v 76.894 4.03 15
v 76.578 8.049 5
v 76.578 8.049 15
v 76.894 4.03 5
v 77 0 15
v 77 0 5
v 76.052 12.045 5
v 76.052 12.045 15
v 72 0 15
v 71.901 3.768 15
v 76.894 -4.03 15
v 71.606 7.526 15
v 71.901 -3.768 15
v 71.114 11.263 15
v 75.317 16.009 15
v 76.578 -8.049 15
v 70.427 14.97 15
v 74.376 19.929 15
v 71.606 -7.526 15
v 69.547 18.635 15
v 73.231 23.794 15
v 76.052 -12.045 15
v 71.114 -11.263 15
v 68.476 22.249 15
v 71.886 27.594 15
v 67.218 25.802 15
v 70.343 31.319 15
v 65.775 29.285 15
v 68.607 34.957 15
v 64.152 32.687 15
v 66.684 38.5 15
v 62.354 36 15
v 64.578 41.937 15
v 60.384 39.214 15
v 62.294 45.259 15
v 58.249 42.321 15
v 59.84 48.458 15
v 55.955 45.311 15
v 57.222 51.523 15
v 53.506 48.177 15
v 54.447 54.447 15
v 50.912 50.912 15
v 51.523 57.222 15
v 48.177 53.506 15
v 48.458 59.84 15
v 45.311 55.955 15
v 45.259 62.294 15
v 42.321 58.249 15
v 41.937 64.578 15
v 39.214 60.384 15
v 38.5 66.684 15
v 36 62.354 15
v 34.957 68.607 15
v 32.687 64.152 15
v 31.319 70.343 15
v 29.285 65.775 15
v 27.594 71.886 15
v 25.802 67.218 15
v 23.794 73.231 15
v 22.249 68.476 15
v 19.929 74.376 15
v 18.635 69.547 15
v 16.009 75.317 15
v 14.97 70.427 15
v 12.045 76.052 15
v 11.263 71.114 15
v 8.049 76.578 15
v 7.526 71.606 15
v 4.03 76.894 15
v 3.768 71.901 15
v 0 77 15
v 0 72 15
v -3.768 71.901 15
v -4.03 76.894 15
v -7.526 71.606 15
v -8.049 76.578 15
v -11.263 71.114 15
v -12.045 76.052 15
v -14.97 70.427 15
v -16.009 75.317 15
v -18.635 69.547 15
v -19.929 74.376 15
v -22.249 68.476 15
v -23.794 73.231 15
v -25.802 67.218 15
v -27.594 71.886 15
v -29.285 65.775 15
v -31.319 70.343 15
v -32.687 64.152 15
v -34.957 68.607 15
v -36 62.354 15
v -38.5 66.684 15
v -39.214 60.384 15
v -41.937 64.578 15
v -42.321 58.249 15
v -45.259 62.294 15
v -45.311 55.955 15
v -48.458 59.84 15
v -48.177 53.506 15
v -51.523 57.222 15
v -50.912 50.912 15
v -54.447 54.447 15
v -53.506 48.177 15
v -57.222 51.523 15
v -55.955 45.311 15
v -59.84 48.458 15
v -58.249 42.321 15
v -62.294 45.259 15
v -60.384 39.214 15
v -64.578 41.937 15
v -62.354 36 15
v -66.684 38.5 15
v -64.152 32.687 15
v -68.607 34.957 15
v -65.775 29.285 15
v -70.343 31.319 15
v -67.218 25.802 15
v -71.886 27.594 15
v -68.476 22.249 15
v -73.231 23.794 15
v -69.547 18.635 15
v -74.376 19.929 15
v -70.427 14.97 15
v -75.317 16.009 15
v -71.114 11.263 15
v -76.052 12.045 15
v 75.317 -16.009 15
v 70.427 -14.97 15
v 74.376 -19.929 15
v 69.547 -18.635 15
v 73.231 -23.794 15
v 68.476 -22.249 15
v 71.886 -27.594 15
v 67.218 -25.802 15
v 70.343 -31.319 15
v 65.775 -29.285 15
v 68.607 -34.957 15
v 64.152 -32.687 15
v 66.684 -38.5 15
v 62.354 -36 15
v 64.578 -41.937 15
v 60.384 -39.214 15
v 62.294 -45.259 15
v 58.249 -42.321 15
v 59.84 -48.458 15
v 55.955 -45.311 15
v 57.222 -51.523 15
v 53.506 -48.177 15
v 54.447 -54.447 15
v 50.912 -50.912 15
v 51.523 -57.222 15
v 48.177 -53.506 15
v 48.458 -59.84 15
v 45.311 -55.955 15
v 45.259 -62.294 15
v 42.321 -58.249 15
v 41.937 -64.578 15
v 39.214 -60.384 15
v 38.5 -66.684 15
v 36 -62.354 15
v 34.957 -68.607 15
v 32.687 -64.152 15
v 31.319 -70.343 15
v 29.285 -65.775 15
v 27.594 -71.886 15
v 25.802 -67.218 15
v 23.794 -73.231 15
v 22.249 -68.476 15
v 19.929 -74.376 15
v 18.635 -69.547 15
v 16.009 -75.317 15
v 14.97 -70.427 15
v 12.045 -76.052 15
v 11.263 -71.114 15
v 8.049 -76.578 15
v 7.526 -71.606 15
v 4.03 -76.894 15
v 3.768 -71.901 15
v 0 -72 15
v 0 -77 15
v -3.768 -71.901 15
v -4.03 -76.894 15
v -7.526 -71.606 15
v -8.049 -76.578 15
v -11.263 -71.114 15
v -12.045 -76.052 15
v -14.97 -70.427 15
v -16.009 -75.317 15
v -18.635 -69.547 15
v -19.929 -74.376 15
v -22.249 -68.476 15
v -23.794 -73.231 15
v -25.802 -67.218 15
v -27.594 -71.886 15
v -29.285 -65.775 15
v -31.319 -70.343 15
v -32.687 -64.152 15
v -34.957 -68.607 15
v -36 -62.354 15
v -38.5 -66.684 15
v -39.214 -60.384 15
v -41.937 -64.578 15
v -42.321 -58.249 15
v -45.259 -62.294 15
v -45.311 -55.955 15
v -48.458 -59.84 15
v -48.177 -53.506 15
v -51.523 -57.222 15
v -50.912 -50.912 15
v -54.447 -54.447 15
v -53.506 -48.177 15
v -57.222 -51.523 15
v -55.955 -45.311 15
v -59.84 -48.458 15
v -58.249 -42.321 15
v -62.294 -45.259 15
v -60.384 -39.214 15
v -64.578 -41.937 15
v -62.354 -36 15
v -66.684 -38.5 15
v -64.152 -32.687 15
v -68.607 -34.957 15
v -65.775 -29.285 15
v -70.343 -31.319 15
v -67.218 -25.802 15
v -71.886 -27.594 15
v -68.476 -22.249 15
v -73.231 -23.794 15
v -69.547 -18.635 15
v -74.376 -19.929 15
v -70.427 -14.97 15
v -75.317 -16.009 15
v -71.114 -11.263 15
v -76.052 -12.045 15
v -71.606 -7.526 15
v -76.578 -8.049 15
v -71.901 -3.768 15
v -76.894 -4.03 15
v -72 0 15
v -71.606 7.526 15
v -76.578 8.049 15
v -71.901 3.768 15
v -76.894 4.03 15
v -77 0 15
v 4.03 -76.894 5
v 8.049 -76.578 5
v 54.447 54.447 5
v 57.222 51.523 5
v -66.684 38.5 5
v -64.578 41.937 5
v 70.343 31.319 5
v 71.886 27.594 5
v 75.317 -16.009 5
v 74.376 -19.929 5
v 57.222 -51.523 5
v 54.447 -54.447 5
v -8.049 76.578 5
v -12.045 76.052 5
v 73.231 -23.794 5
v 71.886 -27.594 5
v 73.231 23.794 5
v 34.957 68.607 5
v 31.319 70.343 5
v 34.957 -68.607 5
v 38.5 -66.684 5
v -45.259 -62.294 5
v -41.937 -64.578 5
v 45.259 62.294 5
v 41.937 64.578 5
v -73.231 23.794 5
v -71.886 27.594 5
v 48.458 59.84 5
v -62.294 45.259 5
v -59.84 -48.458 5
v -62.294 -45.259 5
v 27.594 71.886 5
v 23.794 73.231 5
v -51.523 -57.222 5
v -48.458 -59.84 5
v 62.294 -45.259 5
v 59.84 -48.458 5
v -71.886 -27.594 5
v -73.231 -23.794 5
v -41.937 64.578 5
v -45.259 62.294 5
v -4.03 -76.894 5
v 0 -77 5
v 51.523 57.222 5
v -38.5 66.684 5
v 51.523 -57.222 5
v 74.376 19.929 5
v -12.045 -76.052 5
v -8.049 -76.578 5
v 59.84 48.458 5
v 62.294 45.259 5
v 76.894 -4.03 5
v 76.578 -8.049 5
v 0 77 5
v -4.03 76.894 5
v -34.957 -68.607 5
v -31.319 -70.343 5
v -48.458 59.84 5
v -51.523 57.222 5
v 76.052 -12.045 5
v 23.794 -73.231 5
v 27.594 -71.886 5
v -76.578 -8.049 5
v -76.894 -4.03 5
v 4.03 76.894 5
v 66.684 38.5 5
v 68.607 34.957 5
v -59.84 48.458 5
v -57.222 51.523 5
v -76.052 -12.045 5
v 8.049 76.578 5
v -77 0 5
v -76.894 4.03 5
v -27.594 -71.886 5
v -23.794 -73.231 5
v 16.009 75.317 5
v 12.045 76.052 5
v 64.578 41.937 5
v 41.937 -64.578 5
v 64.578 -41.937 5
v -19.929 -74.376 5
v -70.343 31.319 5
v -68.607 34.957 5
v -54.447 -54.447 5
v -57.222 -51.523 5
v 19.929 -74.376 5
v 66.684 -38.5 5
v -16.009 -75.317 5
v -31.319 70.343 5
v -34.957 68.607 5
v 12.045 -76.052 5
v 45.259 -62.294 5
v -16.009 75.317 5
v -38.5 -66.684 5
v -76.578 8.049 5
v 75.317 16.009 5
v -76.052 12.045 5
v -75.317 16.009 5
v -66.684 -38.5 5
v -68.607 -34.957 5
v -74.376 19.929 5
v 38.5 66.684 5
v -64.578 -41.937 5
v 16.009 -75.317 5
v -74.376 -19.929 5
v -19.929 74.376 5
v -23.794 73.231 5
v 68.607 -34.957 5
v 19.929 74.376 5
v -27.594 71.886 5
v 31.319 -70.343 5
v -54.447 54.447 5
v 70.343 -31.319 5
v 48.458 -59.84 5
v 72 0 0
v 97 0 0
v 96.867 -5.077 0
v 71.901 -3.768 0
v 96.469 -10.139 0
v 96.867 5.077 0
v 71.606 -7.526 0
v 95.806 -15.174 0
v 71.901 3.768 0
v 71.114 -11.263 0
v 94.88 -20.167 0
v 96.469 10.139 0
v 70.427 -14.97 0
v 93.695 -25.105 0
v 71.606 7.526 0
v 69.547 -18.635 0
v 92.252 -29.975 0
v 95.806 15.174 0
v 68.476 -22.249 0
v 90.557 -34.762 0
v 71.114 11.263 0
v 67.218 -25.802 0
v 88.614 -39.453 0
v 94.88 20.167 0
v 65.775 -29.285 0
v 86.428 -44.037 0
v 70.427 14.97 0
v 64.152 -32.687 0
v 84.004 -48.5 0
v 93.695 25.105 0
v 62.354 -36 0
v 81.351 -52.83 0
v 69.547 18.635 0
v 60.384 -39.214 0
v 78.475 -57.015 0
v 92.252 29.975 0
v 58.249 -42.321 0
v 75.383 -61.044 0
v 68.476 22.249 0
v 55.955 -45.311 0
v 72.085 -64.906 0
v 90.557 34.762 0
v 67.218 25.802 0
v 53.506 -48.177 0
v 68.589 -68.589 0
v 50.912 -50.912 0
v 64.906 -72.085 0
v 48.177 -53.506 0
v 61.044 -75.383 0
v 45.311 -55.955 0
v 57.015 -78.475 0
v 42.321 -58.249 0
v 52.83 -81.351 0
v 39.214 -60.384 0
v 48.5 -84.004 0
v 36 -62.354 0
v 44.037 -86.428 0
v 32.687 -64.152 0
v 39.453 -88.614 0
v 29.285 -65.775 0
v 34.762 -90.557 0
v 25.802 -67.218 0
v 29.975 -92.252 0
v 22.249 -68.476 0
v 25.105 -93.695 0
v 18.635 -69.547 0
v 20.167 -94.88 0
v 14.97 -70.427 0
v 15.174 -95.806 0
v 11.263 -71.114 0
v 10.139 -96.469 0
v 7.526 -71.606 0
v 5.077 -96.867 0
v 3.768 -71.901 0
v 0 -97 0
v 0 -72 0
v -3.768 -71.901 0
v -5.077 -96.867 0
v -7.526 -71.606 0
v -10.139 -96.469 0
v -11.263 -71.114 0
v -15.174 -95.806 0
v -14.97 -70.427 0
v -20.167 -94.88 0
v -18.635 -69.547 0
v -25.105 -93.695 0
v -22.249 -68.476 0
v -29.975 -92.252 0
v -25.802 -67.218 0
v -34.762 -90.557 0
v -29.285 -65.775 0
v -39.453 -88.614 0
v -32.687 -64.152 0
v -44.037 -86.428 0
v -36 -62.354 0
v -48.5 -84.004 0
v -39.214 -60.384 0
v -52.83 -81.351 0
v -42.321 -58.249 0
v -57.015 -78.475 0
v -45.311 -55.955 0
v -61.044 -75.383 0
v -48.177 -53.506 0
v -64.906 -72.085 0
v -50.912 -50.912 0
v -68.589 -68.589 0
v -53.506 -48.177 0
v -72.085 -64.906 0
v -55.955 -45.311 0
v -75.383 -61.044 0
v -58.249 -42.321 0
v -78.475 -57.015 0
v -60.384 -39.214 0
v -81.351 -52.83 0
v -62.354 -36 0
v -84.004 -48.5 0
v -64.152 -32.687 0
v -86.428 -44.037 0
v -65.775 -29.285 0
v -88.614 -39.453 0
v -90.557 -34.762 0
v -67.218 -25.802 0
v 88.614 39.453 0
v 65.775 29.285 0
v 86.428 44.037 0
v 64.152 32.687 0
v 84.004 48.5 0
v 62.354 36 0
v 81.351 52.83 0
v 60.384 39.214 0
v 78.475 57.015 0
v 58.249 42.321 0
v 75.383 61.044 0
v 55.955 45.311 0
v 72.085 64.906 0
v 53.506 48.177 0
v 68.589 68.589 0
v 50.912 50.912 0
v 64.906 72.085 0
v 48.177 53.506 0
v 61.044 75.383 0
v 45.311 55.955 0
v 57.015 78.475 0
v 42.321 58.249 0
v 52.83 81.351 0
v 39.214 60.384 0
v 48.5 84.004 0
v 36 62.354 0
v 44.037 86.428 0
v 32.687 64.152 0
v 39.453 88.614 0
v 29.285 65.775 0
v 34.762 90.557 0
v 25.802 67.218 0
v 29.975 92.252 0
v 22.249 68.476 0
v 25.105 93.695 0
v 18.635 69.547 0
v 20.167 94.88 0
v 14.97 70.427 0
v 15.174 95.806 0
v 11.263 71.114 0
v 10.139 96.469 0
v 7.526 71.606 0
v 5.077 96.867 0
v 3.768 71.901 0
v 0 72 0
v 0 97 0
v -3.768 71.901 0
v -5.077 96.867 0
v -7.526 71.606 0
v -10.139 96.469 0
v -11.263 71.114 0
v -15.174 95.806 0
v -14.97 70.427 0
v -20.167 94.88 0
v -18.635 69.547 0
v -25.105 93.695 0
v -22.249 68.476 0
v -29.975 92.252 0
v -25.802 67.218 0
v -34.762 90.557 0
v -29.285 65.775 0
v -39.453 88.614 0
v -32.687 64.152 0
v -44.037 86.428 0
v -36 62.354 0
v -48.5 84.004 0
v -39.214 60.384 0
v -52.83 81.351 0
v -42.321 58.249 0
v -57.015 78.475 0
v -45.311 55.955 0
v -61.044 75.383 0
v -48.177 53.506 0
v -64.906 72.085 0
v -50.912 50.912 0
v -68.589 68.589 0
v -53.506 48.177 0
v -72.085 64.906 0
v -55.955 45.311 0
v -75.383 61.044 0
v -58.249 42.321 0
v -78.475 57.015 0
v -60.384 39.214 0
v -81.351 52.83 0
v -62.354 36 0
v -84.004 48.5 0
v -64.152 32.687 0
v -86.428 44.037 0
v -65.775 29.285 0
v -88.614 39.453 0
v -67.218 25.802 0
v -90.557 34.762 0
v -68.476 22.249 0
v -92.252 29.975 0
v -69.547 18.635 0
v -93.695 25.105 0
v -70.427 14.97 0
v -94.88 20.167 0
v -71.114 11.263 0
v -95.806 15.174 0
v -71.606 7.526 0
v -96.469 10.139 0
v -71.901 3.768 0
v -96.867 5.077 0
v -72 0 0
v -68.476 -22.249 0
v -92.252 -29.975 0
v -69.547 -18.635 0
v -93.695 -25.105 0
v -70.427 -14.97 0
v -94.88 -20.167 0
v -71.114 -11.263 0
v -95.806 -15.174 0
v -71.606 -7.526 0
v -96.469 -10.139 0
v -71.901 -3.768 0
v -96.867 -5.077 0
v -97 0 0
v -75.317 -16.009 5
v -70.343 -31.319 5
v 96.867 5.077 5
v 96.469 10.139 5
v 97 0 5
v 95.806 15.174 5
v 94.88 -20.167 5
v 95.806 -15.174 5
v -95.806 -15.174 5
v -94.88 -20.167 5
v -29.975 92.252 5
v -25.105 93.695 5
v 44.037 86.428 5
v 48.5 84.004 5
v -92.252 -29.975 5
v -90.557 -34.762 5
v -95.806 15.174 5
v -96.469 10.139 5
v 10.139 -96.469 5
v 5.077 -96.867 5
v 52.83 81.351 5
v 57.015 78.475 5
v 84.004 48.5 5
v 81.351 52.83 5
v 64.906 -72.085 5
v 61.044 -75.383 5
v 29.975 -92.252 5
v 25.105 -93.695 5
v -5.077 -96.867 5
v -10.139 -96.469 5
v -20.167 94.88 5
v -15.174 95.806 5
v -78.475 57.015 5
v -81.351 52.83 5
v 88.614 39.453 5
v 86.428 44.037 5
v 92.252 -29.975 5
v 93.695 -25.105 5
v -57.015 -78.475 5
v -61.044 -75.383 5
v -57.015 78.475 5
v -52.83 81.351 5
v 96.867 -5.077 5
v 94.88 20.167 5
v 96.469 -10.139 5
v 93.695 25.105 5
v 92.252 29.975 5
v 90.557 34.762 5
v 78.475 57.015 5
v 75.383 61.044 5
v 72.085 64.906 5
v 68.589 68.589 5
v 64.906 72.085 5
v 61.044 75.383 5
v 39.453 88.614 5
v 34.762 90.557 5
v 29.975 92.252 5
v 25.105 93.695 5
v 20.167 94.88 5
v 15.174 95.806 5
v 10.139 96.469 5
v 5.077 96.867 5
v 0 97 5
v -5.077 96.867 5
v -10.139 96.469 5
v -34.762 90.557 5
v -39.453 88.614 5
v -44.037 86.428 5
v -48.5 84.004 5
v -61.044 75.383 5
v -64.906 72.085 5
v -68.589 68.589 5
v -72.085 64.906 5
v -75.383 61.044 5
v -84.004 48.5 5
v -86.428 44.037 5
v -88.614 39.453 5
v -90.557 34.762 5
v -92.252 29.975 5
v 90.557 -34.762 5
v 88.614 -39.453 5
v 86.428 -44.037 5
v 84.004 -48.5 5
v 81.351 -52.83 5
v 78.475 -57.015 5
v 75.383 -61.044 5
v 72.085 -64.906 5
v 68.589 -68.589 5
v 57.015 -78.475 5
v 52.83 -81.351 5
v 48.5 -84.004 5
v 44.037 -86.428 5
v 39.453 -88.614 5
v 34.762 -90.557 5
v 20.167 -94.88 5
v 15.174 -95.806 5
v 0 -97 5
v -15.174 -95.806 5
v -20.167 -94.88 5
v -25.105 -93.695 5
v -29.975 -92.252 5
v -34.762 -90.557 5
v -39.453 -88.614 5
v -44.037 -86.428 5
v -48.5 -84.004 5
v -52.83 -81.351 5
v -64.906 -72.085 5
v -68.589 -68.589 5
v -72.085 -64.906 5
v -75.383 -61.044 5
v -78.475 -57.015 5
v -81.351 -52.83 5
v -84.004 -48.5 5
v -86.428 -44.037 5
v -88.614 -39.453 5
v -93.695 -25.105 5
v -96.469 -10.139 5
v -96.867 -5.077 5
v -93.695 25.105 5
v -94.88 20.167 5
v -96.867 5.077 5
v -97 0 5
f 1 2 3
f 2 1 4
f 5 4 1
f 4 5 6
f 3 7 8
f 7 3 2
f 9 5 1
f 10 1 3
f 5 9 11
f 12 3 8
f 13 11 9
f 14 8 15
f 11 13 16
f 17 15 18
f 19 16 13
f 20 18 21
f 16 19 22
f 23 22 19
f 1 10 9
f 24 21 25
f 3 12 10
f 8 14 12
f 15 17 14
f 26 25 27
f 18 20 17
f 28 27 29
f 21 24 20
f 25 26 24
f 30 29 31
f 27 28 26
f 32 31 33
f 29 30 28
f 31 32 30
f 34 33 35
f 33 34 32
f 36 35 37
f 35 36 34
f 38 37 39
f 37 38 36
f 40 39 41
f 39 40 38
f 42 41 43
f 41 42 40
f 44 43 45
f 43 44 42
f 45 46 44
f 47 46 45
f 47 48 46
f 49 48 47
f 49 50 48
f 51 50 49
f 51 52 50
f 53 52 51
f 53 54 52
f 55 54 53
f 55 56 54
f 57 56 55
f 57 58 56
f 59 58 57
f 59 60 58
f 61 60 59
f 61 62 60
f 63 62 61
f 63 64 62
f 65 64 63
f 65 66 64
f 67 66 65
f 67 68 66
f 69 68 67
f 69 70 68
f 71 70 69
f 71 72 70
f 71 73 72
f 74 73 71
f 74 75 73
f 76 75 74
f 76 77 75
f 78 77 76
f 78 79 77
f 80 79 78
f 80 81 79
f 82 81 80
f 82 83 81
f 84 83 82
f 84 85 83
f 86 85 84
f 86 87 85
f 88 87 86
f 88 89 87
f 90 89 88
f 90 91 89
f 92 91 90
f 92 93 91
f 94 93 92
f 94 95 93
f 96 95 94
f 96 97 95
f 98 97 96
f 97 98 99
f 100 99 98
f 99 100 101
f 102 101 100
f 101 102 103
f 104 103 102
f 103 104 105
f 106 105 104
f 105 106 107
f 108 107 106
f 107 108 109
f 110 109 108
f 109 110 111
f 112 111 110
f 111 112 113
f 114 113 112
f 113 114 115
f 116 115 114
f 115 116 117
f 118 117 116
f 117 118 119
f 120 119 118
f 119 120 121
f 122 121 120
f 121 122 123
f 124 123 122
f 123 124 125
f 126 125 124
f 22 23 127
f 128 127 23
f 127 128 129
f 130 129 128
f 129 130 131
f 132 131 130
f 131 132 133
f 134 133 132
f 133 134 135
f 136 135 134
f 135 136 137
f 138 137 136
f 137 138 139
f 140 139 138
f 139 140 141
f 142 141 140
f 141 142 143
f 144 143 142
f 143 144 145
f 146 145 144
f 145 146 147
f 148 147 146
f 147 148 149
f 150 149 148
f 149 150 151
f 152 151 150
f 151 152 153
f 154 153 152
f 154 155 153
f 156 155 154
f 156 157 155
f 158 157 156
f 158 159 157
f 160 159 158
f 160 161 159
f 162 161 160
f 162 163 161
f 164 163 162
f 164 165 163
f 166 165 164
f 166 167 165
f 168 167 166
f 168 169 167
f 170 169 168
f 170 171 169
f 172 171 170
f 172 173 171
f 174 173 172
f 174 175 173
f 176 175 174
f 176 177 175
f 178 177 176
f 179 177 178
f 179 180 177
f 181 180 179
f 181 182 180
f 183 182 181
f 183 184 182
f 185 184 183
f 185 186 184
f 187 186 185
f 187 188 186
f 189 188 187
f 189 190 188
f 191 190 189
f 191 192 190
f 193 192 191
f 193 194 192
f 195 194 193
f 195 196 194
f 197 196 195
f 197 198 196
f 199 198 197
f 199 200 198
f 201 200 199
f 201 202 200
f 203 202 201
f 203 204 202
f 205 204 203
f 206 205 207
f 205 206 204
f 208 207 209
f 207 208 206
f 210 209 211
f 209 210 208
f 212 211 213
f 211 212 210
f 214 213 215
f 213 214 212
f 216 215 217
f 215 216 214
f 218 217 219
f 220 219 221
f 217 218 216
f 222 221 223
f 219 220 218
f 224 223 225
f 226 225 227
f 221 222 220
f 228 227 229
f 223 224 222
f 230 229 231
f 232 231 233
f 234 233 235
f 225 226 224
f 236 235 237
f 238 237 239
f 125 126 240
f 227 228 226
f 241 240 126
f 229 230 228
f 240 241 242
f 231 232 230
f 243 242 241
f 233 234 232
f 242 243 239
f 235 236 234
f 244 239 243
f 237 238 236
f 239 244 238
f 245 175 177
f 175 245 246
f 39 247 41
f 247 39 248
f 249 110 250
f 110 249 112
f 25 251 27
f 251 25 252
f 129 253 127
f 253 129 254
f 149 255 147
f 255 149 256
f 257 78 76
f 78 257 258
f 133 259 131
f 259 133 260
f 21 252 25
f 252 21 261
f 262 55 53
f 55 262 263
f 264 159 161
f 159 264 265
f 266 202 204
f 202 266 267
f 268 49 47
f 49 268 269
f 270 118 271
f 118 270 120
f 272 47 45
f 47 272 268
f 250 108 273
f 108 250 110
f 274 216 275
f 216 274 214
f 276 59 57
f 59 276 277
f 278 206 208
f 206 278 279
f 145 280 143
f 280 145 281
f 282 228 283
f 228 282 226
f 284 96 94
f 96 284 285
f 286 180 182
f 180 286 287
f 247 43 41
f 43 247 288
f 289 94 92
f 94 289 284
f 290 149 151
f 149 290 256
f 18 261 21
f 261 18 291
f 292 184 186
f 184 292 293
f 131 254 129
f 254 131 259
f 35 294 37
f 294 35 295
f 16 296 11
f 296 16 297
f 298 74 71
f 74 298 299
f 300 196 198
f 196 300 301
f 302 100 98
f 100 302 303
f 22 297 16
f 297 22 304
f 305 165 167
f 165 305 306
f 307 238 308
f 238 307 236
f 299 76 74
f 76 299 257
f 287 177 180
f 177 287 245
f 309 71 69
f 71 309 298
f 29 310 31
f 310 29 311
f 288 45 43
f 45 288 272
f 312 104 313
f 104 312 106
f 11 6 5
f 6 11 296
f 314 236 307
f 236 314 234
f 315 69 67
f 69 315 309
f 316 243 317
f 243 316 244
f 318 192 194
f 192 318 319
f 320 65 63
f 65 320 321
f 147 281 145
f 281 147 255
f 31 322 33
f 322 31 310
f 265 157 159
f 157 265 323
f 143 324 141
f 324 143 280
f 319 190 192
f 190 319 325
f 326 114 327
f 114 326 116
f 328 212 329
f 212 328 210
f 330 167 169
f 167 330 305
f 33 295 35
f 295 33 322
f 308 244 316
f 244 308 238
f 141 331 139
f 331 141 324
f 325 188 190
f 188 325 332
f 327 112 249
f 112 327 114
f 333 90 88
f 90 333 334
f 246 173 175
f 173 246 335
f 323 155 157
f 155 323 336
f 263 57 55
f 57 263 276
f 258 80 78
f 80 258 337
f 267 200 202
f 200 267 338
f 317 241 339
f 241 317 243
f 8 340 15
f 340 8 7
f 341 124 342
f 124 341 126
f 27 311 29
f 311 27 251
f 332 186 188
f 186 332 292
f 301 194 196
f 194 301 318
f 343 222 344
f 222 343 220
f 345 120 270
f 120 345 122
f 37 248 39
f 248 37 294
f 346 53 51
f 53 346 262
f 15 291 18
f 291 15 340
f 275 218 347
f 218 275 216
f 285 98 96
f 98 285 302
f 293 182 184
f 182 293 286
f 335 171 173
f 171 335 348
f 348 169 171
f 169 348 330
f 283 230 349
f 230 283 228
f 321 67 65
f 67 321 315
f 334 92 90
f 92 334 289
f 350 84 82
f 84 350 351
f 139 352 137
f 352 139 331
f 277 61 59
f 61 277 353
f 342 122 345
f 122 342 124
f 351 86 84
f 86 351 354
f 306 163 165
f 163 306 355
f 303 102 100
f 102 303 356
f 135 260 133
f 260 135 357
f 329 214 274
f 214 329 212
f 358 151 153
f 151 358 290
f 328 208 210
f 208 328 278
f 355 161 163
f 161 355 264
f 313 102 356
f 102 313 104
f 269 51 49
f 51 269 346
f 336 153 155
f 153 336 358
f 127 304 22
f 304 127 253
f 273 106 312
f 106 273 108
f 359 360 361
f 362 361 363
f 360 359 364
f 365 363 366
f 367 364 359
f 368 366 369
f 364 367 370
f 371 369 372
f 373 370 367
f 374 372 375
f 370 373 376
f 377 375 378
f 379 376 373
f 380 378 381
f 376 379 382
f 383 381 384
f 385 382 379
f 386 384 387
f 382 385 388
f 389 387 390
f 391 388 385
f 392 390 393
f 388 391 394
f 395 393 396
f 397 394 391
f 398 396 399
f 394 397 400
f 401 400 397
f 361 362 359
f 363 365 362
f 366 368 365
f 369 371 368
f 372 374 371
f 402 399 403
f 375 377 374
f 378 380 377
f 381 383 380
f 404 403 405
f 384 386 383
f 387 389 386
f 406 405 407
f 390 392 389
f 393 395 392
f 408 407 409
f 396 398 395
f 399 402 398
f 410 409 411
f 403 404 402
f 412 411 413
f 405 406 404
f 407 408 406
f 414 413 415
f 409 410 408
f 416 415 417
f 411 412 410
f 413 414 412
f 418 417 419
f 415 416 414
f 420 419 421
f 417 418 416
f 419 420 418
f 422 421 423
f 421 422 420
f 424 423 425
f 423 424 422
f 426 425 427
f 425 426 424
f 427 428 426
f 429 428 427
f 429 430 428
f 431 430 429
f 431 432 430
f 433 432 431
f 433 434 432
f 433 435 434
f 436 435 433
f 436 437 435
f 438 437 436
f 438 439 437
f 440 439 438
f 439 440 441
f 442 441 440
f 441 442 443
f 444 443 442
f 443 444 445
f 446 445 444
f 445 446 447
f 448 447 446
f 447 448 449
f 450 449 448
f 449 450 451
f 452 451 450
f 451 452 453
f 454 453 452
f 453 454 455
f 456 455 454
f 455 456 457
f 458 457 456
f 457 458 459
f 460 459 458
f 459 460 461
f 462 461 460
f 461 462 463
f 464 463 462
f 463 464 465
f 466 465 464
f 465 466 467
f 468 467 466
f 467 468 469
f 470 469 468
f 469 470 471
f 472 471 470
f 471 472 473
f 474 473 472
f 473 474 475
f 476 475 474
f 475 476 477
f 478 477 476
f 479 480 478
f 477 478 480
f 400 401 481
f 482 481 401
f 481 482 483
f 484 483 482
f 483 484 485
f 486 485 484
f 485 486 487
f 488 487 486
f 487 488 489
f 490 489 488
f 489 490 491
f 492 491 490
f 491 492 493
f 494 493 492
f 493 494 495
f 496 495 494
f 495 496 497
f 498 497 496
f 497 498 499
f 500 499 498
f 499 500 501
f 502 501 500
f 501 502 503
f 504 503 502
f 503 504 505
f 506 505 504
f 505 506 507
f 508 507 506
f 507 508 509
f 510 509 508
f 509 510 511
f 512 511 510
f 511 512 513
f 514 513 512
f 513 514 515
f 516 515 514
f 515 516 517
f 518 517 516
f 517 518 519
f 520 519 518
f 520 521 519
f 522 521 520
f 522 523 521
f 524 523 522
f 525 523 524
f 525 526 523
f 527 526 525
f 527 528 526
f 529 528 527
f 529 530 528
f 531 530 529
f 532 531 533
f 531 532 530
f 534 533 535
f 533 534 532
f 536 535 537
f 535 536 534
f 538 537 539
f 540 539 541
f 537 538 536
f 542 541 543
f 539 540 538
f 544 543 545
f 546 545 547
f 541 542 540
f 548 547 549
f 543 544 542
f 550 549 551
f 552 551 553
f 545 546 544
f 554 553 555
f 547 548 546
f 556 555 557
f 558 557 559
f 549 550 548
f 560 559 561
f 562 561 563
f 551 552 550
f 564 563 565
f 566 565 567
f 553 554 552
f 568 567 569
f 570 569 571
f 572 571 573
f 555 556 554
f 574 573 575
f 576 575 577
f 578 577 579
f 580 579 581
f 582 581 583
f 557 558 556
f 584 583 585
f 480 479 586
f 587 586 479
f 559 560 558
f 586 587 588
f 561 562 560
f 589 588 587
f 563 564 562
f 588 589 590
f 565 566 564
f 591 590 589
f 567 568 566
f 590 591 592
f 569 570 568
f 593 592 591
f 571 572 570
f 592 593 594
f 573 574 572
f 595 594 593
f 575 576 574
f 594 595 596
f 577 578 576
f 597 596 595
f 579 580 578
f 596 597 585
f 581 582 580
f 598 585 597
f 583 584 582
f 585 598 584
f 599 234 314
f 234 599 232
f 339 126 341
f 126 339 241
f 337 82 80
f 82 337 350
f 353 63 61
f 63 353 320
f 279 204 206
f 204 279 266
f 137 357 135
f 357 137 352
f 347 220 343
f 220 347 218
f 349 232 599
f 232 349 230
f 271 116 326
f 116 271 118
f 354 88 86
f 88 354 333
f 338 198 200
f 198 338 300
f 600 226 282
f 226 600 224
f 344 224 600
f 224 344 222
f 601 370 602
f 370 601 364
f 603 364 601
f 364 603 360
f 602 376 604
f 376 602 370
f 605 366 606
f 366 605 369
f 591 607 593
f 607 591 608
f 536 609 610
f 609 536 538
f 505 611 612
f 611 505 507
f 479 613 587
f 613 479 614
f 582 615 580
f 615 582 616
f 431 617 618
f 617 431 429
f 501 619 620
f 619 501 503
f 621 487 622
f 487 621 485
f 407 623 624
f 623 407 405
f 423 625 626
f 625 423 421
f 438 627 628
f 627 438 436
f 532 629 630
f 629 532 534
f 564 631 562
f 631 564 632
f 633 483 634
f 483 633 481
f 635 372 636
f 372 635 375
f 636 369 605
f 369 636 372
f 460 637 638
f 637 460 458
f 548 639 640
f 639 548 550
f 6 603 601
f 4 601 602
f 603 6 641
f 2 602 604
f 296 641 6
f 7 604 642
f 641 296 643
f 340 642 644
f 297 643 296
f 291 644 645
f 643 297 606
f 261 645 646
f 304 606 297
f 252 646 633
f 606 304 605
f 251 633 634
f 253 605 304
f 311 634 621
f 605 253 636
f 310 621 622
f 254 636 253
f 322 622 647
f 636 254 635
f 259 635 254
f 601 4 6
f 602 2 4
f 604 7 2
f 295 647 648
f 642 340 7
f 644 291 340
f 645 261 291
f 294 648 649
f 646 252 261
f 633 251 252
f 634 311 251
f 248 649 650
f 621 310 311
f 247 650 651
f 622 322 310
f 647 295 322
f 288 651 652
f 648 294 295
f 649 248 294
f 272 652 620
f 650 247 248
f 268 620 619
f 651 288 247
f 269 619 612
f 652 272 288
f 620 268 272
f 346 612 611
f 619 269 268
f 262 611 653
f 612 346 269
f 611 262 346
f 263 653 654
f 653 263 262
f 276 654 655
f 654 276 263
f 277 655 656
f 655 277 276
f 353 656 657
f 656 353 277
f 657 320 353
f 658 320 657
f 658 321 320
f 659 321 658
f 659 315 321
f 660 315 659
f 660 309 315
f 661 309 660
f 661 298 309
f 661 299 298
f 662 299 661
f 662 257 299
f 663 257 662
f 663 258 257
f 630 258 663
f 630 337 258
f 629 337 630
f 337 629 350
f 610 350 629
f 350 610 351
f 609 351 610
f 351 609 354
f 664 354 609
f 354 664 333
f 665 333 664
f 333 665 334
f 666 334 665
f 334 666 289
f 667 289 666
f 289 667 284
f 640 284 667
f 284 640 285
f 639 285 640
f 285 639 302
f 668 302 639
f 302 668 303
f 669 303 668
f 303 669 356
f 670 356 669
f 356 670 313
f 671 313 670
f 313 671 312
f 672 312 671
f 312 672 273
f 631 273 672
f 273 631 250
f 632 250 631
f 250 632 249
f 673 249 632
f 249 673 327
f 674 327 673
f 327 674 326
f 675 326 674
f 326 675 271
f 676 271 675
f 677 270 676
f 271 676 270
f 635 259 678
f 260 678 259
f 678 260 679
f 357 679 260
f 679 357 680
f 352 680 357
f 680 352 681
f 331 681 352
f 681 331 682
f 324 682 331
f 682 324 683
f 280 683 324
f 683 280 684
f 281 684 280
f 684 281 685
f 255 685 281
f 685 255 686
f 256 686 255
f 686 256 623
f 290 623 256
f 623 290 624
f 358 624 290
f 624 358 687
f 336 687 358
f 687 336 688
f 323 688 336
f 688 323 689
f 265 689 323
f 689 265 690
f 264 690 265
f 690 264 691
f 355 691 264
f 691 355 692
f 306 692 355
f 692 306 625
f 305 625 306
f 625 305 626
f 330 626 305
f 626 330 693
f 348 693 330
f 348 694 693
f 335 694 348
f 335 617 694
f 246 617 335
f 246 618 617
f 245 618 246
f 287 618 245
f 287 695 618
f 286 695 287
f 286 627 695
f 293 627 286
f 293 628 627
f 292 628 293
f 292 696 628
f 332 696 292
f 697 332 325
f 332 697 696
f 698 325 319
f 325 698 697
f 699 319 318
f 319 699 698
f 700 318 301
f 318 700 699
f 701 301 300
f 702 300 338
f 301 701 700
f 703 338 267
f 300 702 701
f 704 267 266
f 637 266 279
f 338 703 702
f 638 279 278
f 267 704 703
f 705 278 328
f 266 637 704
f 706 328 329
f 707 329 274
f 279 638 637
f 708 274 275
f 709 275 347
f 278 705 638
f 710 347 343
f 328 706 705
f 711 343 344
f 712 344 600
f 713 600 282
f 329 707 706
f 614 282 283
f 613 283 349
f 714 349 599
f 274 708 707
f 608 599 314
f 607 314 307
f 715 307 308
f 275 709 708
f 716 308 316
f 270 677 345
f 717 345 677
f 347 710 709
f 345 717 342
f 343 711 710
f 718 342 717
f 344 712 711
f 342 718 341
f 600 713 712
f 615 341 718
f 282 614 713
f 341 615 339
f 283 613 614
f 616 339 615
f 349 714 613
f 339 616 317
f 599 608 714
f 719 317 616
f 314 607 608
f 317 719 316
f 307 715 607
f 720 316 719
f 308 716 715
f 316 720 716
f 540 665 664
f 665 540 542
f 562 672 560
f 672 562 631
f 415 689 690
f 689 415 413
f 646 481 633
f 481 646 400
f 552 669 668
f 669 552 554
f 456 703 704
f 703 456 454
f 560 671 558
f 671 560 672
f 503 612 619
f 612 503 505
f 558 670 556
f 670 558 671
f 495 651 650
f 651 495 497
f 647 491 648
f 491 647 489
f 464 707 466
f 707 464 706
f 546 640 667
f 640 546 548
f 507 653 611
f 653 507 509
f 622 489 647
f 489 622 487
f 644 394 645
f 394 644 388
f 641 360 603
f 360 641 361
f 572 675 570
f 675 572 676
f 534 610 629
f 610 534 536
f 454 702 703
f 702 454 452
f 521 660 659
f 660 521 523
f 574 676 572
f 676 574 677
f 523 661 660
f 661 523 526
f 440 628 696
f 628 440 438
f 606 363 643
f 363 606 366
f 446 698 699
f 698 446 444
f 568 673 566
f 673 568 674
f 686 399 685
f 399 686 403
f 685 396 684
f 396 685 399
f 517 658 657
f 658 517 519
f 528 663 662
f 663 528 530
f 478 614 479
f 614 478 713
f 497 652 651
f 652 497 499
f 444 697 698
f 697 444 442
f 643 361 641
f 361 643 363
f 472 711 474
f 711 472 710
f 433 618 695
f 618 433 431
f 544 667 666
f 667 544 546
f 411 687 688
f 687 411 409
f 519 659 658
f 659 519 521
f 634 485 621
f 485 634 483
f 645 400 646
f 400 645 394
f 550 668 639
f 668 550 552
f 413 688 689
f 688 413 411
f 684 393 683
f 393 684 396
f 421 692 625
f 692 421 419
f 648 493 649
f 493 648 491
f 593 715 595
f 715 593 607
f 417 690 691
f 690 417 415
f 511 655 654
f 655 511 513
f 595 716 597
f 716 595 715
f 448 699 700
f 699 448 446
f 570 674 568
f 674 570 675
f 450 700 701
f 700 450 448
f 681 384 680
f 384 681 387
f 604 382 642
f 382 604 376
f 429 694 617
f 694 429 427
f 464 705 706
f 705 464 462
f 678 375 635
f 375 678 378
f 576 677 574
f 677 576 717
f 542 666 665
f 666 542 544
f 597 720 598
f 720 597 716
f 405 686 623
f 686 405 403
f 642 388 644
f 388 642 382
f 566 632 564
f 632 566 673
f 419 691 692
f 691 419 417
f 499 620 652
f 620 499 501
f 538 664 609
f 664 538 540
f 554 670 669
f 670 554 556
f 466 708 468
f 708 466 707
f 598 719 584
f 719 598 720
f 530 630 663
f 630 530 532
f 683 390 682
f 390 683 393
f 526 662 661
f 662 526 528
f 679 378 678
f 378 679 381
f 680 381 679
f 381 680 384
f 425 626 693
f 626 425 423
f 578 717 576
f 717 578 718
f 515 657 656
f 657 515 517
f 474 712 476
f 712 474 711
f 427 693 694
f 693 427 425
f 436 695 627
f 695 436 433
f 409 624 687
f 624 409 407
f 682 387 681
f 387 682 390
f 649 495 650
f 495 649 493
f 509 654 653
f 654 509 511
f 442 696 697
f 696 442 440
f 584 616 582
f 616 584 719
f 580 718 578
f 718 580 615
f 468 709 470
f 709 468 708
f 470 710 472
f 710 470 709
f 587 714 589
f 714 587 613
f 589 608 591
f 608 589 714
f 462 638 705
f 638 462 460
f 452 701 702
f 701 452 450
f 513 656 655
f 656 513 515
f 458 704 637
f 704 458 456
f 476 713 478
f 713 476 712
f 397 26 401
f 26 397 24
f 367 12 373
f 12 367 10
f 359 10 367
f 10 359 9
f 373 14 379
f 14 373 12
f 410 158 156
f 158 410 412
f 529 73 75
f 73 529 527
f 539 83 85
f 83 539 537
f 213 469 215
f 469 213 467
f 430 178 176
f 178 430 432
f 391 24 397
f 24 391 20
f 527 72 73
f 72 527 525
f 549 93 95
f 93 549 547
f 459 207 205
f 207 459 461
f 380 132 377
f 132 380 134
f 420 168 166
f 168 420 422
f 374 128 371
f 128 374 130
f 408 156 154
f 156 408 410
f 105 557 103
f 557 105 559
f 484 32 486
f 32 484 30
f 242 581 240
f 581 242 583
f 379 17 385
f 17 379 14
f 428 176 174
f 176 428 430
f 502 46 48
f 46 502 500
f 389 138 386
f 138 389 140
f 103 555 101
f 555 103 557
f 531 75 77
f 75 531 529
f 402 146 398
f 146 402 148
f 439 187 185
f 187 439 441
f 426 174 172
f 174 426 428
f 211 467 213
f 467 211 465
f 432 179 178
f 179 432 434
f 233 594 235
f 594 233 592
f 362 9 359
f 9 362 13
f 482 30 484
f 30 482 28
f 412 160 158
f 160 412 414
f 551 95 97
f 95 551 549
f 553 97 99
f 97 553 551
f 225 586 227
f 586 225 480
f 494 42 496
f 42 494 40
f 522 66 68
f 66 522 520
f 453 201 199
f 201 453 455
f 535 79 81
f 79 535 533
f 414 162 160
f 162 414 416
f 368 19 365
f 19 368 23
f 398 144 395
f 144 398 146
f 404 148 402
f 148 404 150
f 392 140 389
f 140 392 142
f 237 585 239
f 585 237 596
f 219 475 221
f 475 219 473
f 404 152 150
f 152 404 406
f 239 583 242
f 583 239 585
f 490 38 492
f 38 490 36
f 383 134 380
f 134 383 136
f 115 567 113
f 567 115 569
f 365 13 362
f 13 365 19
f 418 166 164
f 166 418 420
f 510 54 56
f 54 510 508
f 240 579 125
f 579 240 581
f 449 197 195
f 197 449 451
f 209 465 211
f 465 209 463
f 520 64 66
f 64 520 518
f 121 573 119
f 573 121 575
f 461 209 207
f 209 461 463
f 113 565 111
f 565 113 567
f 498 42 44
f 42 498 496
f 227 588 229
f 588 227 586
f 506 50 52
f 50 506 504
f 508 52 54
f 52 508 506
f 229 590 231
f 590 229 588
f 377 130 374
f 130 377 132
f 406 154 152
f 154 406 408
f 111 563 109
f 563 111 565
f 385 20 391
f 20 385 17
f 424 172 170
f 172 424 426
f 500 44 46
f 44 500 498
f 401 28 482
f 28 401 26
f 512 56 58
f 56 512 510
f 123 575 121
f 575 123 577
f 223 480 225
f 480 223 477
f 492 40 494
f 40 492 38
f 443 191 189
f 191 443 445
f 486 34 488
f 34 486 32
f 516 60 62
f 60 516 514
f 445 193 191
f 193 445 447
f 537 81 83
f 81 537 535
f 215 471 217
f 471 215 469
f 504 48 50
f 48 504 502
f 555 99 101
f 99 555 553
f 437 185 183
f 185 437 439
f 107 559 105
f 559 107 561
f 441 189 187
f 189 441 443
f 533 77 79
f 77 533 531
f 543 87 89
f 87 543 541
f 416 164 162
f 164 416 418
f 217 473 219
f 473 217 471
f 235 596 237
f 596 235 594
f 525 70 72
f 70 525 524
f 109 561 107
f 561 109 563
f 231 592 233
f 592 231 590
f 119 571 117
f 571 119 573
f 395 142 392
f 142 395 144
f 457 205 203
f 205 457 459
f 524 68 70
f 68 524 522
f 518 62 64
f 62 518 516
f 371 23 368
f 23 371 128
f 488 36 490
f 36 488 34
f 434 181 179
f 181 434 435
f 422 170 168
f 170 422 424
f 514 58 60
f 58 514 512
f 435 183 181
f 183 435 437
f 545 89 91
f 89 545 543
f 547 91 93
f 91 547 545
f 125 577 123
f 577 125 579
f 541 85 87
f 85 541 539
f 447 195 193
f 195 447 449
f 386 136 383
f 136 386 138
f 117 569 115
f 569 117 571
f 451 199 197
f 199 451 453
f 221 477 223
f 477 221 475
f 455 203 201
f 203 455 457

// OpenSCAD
$fn = 120;

height = 15;
dia = 154;
thickness = 5;
outer = 20;

difference() {
    
    
    union() {
        cylinder(h = height, r = dia/2);
        cylinder(h = thickness, r = dia/2 + outer);
    }
    cylinder(h = 100, r = dia/2-thickness, center = true);
}

//translate([22, 16, 0])
//rotate(90, [1, 0, 0])
//linear_extrude(32, true)
//polygon([[0,0], [9, 0], [8.5, 30], [5.5, 30], [6, 3], [0, 3]]);
